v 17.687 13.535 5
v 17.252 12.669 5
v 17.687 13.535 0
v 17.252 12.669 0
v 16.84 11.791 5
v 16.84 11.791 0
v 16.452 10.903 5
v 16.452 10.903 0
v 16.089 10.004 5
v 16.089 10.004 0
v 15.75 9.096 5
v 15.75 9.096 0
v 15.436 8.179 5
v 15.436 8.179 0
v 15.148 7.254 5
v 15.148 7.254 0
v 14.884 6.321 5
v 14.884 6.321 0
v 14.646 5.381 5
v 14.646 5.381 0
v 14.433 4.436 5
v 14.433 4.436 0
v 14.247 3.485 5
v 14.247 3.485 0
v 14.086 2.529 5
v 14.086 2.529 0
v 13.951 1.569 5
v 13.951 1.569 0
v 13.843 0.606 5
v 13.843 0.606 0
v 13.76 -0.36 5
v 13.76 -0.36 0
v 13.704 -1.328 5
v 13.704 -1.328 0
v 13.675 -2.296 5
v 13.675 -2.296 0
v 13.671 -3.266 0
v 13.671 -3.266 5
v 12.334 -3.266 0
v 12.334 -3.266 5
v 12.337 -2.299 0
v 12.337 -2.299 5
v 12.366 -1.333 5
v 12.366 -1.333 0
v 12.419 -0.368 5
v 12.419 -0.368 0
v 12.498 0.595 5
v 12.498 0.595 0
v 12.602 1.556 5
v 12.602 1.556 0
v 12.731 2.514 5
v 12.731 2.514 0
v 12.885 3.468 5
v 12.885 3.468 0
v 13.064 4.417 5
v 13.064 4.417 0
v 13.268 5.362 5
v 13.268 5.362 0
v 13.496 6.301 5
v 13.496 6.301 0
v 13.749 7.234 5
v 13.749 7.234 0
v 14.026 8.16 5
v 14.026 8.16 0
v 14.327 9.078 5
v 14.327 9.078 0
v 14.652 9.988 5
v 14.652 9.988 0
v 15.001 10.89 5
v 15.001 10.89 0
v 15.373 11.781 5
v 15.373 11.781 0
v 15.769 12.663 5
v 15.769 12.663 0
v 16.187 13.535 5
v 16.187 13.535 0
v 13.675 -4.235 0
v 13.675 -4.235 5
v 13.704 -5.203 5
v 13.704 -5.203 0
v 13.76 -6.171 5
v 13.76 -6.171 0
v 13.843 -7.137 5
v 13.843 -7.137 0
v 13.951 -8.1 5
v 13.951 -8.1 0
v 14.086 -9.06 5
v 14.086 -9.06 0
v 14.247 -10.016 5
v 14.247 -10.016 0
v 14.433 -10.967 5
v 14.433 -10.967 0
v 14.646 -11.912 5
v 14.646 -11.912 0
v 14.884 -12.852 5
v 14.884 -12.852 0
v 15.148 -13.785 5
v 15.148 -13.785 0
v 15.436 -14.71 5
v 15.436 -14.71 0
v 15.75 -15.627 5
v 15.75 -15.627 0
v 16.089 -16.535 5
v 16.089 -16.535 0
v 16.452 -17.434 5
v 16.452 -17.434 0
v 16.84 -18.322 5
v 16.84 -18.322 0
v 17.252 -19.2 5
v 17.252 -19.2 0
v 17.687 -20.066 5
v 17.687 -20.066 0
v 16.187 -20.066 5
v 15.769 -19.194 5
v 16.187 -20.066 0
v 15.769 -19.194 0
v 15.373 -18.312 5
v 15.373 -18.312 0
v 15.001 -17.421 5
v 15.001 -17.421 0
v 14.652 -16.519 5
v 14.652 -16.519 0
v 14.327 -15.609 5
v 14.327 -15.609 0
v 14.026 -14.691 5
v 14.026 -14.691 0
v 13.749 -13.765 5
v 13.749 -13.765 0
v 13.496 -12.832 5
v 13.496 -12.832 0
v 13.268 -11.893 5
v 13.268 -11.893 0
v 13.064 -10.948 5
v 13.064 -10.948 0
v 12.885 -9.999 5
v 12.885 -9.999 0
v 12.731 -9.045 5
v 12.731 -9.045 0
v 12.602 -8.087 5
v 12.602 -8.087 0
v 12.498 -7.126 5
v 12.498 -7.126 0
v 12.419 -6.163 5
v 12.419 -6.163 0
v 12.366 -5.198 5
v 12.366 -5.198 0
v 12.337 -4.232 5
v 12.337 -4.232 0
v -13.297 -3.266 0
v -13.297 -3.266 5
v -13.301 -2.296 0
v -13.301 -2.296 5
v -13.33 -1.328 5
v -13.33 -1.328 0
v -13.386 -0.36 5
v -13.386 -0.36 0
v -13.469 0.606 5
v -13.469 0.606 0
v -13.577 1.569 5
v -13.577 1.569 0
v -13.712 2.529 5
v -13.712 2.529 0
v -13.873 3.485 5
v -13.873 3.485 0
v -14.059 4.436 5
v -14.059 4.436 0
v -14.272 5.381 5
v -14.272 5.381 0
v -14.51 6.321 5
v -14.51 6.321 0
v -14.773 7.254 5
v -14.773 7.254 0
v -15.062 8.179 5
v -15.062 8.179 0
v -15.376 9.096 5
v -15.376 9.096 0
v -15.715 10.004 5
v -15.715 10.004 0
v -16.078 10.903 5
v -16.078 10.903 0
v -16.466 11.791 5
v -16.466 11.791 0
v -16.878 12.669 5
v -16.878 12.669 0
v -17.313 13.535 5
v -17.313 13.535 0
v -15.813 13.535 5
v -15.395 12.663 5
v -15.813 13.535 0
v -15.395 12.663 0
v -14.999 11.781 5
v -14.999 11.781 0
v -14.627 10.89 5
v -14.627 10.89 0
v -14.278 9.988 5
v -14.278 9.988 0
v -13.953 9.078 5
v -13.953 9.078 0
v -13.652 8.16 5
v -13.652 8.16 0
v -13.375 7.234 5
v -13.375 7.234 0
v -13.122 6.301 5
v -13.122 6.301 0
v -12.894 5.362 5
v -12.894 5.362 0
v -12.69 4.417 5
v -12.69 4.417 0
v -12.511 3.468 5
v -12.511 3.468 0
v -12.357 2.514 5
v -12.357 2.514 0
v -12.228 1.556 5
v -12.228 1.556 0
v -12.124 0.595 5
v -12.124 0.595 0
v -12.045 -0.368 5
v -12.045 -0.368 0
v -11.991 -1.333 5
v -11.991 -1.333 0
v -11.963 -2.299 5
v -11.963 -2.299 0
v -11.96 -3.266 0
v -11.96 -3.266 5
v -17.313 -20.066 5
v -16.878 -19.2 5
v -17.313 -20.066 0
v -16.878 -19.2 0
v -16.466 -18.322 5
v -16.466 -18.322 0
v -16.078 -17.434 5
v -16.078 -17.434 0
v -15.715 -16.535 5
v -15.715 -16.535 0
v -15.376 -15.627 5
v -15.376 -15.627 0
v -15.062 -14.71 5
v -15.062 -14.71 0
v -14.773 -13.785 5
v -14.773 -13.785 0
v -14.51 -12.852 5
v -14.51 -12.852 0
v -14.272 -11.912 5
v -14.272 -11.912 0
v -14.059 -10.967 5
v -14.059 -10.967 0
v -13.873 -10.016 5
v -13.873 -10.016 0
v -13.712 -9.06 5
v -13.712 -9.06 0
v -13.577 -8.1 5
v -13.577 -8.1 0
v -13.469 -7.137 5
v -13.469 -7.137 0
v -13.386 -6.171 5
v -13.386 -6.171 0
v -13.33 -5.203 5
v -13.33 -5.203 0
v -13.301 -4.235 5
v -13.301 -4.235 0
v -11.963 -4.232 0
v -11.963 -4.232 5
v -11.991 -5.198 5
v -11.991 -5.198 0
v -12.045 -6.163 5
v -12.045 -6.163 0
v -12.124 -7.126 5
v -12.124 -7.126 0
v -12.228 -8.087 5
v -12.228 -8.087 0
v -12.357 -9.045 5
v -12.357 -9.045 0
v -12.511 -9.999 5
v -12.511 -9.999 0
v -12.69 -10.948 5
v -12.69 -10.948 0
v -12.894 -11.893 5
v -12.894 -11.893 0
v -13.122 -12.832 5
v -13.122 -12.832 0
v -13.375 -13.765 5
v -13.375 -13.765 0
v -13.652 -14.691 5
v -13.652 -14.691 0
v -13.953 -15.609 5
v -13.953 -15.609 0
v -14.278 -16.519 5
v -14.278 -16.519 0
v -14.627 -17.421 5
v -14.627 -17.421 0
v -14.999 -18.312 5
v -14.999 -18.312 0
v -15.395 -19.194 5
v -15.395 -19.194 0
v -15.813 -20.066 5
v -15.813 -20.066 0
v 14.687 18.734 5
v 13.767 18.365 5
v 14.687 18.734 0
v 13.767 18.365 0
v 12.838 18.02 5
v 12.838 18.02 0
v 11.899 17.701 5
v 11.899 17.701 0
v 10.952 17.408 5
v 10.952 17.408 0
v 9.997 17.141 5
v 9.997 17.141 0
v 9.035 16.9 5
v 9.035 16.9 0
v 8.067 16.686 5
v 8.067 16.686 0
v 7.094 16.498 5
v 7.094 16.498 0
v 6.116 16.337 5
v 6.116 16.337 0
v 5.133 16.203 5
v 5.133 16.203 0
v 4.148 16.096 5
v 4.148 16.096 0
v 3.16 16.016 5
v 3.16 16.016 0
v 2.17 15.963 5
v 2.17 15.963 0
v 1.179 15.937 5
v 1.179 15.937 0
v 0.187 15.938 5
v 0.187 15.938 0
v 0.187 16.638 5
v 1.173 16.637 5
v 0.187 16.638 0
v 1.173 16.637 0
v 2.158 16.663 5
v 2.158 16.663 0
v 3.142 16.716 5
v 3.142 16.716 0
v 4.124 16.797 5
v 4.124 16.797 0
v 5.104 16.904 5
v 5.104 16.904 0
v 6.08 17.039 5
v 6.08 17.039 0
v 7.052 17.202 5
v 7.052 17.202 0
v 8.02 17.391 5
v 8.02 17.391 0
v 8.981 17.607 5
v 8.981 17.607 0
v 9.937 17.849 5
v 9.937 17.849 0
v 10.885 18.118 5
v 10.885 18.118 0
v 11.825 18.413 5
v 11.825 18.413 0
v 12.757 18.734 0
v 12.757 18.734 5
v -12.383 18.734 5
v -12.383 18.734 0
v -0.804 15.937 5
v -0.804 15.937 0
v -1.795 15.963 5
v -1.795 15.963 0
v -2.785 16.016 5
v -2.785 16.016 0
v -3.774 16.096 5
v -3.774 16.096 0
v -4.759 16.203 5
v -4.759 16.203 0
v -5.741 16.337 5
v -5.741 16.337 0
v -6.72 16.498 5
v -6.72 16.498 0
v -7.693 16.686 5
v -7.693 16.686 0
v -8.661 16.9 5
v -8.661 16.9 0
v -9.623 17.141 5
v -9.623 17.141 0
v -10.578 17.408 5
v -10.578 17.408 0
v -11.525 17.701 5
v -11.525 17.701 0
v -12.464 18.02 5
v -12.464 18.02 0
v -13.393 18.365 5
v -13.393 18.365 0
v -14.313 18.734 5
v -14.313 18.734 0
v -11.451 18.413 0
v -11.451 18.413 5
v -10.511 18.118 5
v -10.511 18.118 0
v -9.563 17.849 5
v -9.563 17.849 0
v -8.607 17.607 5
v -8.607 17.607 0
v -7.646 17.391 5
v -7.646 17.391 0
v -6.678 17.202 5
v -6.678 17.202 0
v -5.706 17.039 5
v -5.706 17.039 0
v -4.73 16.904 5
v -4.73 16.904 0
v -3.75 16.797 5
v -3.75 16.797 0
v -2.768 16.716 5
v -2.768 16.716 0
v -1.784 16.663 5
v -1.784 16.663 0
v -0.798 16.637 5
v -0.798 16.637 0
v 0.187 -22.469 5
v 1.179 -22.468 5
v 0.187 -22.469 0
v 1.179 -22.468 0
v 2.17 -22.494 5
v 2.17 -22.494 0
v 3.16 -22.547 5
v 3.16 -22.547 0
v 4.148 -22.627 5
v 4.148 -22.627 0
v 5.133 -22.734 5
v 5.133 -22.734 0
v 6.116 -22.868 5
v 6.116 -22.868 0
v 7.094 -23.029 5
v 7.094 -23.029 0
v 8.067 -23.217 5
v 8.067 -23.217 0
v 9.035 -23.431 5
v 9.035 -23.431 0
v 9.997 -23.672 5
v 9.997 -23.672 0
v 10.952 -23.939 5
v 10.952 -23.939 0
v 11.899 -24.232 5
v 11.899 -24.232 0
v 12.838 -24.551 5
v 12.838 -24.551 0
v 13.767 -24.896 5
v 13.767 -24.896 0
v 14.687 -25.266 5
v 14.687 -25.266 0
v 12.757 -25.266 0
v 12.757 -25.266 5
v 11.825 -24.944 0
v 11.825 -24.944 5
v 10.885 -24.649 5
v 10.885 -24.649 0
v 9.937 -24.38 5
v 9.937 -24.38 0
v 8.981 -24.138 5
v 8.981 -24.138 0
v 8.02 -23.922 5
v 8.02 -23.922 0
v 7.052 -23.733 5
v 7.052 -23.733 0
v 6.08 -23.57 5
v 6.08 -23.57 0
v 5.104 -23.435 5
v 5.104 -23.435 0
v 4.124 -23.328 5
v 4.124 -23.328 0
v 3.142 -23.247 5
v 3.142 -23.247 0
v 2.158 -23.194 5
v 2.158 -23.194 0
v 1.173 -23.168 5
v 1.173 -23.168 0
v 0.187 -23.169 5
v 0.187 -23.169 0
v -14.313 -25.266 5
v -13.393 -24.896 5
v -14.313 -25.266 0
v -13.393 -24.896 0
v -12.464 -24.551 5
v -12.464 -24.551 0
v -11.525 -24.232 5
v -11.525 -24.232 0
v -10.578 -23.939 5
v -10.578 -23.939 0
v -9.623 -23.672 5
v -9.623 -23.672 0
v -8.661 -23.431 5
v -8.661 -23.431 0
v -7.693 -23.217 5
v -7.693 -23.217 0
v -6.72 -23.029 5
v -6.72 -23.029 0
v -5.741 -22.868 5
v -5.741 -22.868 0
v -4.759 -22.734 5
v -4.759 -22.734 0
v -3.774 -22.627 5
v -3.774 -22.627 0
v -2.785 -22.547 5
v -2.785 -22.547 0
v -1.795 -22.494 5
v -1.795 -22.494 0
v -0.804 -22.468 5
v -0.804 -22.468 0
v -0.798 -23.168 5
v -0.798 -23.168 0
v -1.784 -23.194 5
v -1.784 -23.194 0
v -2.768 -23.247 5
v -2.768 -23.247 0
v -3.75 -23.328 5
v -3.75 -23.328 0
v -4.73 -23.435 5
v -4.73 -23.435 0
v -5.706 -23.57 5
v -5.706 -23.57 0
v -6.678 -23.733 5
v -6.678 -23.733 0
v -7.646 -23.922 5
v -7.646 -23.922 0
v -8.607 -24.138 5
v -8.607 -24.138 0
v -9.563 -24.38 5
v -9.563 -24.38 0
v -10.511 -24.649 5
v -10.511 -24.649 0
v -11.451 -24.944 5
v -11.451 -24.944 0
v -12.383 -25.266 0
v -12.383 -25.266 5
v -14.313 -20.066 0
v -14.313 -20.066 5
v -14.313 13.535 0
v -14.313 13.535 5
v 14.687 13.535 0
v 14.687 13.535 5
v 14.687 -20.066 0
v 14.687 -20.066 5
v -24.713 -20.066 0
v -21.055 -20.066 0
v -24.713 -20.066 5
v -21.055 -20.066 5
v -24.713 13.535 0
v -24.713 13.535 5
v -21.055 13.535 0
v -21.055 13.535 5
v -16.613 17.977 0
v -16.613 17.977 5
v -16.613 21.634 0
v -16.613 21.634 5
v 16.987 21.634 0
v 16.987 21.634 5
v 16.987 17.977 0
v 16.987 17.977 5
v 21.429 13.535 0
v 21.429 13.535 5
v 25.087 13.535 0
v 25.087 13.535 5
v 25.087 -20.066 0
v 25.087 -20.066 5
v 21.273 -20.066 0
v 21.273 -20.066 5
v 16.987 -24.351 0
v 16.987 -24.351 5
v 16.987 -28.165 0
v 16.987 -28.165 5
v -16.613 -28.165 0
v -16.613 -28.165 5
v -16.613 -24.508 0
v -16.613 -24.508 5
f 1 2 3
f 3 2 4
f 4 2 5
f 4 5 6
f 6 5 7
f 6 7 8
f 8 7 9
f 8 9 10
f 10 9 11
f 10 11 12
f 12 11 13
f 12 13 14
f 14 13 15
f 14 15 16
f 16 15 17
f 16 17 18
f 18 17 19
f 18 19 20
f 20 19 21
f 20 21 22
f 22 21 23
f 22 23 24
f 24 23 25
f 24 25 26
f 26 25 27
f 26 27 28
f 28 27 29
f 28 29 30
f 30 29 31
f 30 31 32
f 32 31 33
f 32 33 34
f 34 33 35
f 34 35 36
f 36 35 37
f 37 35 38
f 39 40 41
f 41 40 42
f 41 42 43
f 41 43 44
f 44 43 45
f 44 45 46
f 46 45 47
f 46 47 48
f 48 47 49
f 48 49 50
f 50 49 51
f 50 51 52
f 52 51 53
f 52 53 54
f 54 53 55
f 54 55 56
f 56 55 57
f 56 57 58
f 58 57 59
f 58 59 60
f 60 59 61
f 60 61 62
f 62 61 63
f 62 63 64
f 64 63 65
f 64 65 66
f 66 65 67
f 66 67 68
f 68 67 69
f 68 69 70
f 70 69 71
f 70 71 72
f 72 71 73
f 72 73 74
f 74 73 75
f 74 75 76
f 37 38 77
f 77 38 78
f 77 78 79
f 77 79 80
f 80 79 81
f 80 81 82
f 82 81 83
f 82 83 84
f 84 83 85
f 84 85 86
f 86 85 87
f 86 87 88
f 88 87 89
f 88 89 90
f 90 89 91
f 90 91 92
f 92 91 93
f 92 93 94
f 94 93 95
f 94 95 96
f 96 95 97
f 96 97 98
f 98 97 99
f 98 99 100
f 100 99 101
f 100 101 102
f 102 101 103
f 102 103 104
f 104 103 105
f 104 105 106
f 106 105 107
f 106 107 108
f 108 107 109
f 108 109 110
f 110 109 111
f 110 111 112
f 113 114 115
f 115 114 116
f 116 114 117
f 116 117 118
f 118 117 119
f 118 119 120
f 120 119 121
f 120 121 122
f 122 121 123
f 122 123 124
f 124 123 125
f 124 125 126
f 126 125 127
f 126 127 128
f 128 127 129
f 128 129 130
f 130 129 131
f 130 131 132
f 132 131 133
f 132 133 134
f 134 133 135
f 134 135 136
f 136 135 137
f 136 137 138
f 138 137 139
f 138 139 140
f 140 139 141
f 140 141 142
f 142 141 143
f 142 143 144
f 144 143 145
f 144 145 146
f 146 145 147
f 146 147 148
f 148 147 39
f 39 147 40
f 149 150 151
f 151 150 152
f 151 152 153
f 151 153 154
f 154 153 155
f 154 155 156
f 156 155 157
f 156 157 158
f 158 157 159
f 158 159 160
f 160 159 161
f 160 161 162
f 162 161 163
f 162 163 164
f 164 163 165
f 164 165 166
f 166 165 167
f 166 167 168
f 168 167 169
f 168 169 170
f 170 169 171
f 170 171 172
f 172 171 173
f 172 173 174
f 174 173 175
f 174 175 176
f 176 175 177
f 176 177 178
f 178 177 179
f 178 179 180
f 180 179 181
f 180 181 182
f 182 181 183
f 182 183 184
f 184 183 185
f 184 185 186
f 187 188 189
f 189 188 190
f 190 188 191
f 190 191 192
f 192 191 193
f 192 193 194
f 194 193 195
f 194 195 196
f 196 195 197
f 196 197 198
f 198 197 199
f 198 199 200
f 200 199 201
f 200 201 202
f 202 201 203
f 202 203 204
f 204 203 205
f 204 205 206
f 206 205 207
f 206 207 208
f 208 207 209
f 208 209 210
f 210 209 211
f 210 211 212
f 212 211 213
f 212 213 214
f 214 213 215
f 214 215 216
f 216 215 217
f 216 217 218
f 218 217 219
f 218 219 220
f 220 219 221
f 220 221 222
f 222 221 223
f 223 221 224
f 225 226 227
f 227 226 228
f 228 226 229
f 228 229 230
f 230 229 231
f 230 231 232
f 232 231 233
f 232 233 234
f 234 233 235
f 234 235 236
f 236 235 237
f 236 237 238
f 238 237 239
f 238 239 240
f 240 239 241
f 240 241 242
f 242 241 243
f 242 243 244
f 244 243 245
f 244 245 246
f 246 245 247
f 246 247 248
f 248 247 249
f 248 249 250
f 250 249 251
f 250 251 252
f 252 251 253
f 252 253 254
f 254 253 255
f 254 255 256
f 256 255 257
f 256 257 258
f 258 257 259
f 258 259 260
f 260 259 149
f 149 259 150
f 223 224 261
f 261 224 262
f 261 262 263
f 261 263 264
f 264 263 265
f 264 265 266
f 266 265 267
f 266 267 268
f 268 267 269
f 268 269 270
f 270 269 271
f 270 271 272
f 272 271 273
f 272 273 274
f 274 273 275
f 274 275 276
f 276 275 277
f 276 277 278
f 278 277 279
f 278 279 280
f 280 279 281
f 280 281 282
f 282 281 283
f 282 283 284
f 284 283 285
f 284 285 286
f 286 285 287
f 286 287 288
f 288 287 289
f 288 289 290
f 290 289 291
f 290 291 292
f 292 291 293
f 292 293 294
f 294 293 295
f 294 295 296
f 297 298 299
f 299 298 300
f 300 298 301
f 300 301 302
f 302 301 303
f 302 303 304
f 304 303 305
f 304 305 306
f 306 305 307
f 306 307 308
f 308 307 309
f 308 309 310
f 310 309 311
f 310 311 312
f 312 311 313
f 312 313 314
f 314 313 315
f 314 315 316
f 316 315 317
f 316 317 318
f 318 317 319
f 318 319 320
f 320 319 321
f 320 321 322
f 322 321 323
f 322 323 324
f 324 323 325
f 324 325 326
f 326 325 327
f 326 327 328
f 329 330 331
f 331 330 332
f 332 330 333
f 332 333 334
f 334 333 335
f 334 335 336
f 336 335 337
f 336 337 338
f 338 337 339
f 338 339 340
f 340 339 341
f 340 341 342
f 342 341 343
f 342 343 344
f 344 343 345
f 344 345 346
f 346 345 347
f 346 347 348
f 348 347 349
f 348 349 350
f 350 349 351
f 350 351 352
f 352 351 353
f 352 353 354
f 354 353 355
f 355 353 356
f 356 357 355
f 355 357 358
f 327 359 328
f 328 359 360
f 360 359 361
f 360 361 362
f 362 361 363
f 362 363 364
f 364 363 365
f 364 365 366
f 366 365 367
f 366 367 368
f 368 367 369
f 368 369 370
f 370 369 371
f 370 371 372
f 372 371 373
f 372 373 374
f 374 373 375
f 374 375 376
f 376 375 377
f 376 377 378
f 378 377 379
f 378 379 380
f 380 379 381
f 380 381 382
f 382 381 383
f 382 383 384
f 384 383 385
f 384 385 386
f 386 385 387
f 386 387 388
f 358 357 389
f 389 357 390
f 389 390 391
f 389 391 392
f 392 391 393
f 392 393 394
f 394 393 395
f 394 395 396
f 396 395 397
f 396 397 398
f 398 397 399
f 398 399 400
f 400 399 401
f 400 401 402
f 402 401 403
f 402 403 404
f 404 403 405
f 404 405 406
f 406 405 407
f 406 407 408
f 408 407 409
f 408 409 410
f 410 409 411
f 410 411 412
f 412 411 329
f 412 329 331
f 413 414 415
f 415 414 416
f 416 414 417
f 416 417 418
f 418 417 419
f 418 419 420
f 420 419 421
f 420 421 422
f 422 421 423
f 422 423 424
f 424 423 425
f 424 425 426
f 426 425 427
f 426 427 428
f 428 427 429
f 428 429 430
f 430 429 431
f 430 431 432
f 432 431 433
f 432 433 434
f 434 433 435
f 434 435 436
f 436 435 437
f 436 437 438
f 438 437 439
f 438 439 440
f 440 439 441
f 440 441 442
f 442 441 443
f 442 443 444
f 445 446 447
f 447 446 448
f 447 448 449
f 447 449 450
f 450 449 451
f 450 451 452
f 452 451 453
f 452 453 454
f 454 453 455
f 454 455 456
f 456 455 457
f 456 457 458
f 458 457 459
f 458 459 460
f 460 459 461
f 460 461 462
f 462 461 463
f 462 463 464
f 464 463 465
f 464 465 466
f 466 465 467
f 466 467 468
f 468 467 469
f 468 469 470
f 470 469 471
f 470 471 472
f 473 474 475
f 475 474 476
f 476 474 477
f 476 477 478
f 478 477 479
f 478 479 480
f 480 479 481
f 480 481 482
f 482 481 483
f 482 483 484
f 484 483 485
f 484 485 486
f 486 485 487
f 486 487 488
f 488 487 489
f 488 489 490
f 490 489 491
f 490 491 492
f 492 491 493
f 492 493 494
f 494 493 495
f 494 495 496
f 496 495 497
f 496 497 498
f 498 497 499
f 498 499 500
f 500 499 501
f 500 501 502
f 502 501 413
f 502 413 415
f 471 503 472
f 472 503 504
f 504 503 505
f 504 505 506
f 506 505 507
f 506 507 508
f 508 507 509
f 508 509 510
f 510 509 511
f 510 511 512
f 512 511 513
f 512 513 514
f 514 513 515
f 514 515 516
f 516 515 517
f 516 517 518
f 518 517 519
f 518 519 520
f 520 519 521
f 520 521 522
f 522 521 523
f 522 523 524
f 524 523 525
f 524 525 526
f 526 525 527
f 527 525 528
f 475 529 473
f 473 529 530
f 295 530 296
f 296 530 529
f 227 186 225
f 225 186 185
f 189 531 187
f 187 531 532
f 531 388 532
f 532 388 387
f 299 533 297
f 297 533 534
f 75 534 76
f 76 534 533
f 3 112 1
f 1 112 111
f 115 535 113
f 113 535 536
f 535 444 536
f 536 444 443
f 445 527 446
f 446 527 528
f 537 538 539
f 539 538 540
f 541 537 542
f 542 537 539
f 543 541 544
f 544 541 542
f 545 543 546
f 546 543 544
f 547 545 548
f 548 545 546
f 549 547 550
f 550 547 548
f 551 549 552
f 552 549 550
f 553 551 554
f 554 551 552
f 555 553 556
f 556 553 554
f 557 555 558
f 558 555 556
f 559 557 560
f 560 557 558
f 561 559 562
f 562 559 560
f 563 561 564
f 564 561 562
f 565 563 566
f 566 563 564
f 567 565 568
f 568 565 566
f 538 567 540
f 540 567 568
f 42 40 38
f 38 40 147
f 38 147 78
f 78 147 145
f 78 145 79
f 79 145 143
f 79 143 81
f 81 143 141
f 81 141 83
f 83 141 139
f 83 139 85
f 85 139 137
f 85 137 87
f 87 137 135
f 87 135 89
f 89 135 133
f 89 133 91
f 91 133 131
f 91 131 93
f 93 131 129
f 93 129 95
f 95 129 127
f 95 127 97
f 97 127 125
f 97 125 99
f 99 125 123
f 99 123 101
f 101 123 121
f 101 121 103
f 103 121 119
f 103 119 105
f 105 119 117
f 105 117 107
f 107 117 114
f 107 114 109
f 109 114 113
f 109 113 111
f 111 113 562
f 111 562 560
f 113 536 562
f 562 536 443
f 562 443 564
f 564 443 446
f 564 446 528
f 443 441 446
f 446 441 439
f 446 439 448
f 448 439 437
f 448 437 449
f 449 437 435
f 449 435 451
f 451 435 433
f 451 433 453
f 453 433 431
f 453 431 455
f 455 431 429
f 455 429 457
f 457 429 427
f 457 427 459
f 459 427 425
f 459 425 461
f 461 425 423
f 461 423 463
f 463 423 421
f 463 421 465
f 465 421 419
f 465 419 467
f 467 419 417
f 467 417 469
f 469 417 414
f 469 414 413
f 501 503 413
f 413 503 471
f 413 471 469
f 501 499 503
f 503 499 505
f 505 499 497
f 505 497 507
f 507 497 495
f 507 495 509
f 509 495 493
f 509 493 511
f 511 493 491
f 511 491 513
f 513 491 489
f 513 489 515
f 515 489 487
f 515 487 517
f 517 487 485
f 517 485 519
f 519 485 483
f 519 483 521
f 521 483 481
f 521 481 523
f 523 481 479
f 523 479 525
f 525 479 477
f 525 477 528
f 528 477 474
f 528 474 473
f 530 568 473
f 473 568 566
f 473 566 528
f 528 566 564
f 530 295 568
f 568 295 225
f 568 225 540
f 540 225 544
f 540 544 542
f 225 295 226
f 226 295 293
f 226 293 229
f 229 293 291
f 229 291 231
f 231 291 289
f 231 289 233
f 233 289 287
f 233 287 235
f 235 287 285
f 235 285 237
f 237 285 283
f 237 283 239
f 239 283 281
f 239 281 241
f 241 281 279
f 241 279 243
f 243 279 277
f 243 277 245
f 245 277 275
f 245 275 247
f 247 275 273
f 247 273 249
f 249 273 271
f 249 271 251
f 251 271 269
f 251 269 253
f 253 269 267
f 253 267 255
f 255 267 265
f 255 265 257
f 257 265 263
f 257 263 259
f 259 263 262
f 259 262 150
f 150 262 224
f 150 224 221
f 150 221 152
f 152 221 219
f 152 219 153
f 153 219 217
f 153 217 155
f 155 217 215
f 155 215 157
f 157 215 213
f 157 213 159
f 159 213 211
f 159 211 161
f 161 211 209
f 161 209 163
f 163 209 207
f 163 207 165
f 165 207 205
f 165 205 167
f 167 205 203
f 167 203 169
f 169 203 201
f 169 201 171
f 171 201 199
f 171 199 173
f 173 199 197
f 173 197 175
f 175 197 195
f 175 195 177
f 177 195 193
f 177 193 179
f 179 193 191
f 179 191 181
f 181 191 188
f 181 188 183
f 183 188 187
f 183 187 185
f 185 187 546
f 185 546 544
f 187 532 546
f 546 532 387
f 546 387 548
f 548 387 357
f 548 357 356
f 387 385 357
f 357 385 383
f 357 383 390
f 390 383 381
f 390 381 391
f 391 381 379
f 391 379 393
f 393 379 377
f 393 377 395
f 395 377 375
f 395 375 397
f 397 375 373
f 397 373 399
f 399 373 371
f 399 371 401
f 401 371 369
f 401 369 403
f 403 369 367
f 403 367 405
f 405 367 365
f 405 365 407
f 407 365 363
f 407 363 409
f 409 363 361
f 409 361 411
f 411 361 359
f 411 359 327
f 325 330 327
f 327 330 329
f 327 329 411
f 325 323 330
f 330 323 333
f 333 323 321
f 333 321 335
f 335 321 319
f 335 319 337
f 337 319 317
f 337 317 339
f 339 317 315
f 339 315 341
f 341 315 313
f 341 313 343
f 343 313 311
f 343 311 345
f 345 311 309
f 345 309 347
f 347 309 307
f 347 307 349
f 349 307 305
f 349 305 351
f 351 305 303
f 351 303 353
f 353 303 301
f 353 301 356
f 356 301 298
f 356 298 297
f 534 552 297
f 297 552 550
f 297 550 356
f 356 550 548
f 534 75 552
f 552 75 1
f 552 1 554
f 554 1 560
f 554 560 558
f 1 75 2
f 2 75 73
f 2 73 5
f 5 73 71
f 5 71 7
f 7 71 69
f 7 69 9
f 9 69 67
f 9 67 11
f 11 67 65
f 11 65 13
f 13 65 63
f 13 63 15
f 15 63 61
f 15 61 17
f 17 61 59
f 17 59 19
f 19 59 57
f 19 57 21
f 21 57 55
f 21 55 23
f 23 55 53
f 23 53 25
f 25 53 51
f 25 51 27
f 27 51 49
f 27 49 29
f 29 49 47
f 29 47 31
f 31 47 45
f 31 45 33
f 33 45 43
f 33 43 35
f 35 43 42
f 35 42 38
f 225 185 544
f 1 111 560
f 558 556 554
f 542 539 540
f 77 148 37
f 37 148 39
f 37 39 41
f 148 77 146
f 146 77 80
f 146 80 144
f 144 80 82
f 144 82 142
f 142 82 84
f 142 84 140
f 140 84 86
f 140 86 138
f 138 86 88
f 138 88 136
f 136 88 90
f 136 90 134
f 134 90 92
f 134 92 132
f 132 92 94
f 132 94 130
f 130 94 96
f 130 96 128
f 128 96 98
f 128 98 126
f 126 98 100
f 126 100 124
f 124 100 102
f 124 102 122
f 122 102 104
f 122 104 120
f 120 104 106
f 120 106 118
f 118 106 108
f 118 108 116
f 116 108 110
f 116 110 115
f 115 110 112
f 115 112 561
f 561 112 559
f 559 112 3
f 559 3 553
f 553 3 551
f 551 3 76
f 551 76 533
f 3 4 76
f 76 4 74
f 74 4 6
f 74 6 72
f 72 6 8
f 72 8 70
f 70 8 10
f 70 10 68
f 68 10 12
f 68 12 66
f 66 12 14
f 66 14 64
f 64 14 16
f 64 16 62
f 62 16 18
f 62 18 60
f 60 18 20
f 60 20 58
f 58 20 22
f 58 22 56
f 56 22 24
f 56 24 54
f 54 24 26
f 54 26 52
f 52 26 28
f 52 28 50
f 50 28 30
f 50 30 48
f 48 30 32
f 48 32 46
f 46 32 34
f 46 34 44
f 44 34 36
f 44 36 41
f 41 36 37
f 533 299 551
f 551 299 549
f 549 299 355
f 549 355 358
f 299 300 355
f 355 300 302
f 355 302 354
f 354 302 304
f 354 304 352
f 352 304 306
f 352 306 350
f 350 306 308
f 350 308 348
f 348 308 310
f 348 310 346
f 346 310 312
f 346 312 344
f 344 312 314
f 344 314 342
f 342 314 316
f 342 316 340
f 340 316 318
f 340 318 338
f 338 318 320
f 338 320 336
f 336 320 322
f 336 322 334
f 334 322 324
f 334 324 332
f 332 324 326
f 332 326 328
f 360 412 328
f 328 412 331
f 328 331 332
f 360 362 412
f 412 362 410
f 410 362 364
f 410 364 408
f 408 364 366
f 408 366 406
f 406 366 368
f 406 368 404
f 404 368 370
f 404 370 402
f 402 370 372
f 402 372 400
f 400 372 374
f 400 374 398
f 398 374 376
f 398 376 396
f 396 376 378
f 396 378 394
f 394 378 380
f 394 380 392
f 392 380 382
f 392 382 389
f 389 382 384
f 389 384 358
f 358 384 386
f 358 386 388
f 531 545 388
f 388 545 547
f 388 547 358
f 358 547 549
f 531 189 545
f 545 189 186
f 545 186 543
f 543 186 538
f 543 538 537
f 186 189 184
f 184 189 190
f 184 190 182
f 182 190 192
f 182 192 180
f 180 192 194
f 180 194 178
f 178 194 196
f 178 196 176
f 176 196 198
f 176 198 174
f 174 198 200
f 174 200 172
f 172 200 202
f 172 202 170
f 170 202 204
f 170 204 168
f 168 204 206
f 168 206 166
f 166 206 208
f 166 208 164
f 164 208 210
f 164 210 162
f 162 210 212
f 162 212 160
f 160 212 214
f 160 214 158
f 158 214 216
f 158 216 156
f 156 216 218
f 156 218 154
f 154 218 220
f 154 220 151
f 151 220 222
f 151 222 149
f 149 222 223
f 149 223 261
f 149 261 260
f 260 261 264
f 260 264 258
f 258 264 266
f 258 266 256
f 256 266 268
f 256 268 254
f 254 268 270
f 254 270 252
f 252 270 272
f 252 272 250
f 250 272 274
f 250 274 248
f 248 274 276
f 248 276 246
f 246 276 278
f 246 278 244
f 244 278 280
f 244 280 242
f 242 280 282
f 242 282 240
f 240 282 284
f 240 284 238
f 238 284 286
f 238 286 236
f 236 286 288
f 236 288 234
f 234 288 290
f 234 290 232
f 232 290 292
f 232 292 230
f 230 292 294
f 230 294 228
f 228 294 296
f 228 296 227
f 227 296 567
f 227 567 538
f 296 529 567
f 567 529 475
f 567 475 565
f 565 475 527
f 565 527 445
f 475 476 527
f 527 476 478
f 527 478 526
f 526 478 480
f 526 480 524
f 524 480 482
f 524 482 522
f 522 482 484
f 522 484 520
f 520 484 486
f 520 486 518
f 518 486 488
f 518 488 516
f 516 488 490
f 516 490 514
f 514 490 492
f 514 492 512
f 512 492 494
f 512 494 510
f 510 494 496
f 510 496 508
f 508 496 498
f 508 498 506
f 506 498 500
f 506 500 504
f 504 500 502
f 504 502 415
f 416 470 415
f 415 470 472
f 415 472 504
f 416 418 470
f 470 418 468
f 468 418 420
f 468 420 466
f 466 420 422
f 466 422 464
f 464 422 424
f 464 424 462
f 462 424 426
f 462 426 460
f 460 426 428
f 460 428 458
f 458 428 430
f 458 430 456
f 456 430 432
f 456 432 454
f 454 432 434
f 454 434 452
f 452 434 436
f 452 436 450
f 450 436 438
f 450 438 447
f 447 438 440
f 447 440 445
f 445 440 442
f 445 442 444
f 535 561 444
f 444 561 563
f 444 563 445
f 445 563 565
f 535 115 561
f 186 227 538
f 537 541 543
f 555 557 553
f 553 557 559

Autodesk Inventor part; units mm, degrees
ref_plane "YZ Plane" through (0, 0, 0) normal (1, 0, 0) x (0, 1, 0)
ref_plane "XZ Plane" through (0, 0, 0) normal (0, 1, 0) x (-1, 0, 0)
ref_plane "XY Plane" through (0, 0, 0) normal (0, 0, 1) x (1, 0, 0)
sketch "Sketch1" plane through (0, 0, 0) normal (0, 0, 1) x (1, 0, 0)
  line L0 (21.5871, 13.6345) -> (17.0871, 18.1345) projected
  line L1 (17.0871, 18.1345) -> (-16.7129, 18.1345) projected
  line L2 (-16.7129, 18.1345) -> (-21.2129, 13.6345) projected
  line L3 (-21.0966, 13.6345) -> (-21.0966, -20.1655) projected
  line L4 (21.4709, -20.1655) -> (21.4709, 13.6345) projected
  line L5 (21.4709, -20.1655) -> (17.0871, -24.4078) projected
  line L6 (-16.7129, -24.4078) -> (17.0871, -24.4078) projected
  line L7 (-16.7129, -24.4078) -> (-21.0966, -20.1655) projected
  line L8 (-24.7129, -28.1655) -> (-24.7129, 13.6345) construction
  line L9 (25.0871, -28.1655) -> (-24.7129, -28.1655) construction
  line L10 (25.0871, -28.1655) -> (25.0871, 13.6345) construction
  line L11 (17.0871, 21.6345) -> (-16.7129, 21.6345) construction
  line L12 (-21.0552, -20.0655) -> (-16.6129, -24.5078)
  line L13 (-16.6129, -24.5078) -> (-16.6129, -28.1655)
  line L14 (-16.6129, -28.1655) -> (17.0871, -28.1655)
  line L15 (25.0871, -20.0655) -> (21.4295, -20.0655)
  line L16 (25.0871, 13.5345) -> (25.0871, -20.0655)
  line L17 (21.4295, 13.5345) -> (25.0871, 13.5345)
  line L18 (21.4295, 13.5345) -> (16.9871, 17.9768)
  line L19 (16.9871, 17.9768) -> (16.9871, 21.6345)
  line L20 (16.9871, 21.6345) -> (-16.6129, 21.6345)
  line L21 (-16.6129, 21.6345) -> (-16.6129, 17.9768)
  line L22 (-16.6129, 17.9768) -> (-21.0552, 13.5345)
  line L23 (-24.7129, 13.5345) -> (-21.0552, 13.5345)
  line L24 (-24.7129, -20.0655) -> (-24.7129, 13.5345)
  line L25 (-21.0552, -20.0655) -> (-24.7129, -20.0655)
  line L26 (-12.3129, -23.2655) -> (12.6871, -23.2655) projected
  line L27 (12.6871, -23.2655) -> (12.6871, 16.7345) projected
  line L28 (-12.3129, 16.7345) -> (12.6871, 16.7345) projected
  line L29 (-12.3129, -23.2655) -> (-12.3129, 16.7345) projected
  line L30 (14.6871, -25.2655) -> (-14.3129, -25.2655) construction
  line L31 (-14.3129, -25.2655) -> (-14.3129, 18.7345) construction
  line L32 (-14.3129, 18.7345) -> (14.6871, 18.7345) construction
  line L33 (14.6871, 18.7345) -> (14.6871, -25.2655) construction
  line L34 (-17.3129, 21.7345) -> (17.6871, 21.7345) construction
  line L35 (17.6871, 21.7345) -> (17.6871, -28.2655) construction
  line L36 (17.6871, -28.2655) -> (-17.3129, -28.2655) construction
  line L37 (-17.3129, -28.2655) -> (-17.3129, 21.7345) construction
  line L38 (-14.3129, -23.2655) -> (-14.3129, -25.2655)
  line L39 (-14.3129, -25.2655) -> (14.6871, -25.2655)
  line L40 (14.6871, -25.2655) -> (14.6871, -20.0655)
  line L41 (14.6871, -20.0655) -> (17.6871, -20.0655)
  line L42 (17.6871, -20.0655) -> (17.6871, 13.5345)
  line L43 (17.6871, 13.5345) -> (14.6871, 13.5345)
  line L44 (14.6871, 13.5345) -> (14.6871, 18.7345)
  line L45 (14.6871, 18.7345) -> (-14.3129, 18.7345)
  line L46 (-14.3129, 18.7345) -> (-14.3129, 13.5345)
  line L47 (-14.3129, 13.5345) -> (-17.3129, 13.5345)
  line L48 (-17.3129, 13.5345) -> (-17.3129, -20.0655)
  line L49 (-17.3129, -20.0655) -> (-14.3129, -20.0655)
  line L50 (-14.3129, -20.0655) -> (-14.3129, -23.2655)
  line L51 (-16.6129, -28.1655) -> (17.0871, -28.1655)
  line L52 (16.9871, -28.1655) -> (16.9871, -24.3509)
  line L53 (16.9871, -24.3509) -> (21.2726, -20.0655)
  line L54 (21.2726, -20.0655) -> (21.4295, -20.0655)
  point P0 (14.2, -44.8454)
  point P1 (16.9871, 19.8057)
  dimension "d74" = 2
  dimension "d75" = 5
  dimension "d76" = 135
extrude "Extrusion1" add sketch "Sketch1" along normal blind 5 contours L19 L18 L17 L4 L15 L54 L53 L52 L6 L40 L41 L42 L43 L44 L1 | L1 L44 L45 L46 L21 L20 L19 | L46 L47 L48 L49 L50 L38 L6 L12 L25 L3 L23 L22 L21 L1 | L17 L16 L15 L4 | L3 L25 L24 L23 | L6 L52 L14 L13 L12 L38 L39 L40
sketch "Sketch5" plane through (0, 0, 0) normal (0, 0, -1) x (-1, 0, 0)
  line L0 (12.3129, -23.2655) -> (-12.6871, -23.2655) construction
  line L1 (-12.6871, -23.2655) -> (-12.6871, 16.7345) construction
  line L2 (12.3129, 16.7345) -> (-12.6871, 16.7345) construction
  line L3 (12.3129, -23.2655) -> (12.3129, 16.7345) construction
  line L4 (-14.6871, -25.2655) -> (14.3129, -25.2655) construction
  arc A0 (14.3129, -25.2655) -> (-0.1871, -22.4693) centre (0.3594, -58.629) ccw
  arc A1 (12.3827, -25.2655) -> (-0.1871, -23.1694) centre (0.3594, -58.629) ccw
  line L5 (-0.1871, -22.4693) -> (-0.1871, -23.1694)
  line L6 (14.3129, -20.0655) -> (14.3129, -25.2655) projected
  line L7 (14.3129, -25.2655) -> (12.3827, -25.2655)
  point P0 (0, 0)
  dimension "d79" = 0.7
extrude "Extrusion4" add sketch "Sketch5" against normal up to surface (5 mm away)
mirror "Mirror1" about plane through (0.1871, -23.1694, 0) normal (1, 0, 0) of "Extrusion4"
ref_plane "Work Plane1" through (0.1871, -20.0655, 0) normal (-1, 0, 0) x (0, 0, 1)
ref_plane "Work Plane2" through (-16.6129, -3.2655, 0) normal (0, -1, 0) x (1, 0, 0)
mirror "Mirror2" about plane through (-16.6129, -3.2655, 0) normal (0, -1, 0) of "Extrusion4", "Mirror1"
sketch "Sketch6" plane through (0, 0, 0) normal (0, 0, -1) x (-1, 0, 0)
  spline S0 degree 3 poles (1.425, -3.2655) (1.425, -3.4679) (1.3845, -3.6839) (1.22, -4.081) (1.0959, -4.2623) (0.8097, -4.5486) (0.6284, -4.6726) (0.2312, -4.8371) (0.0153, -4.8776) (-0.3896, -4.8776) (-0.6055, -4.8371) (-1.0027, -4.6726) (-1.1839, -4.5486) (-1.4702, -4.2623) (-1.5943, -4.081) (-1.7588, -3.6839) (-1.7992, -3.4679) (-1.7992, -3.0631) (-1.7588, -2.8471) (-1.5943, -2.45) (-1.4702, -2.2687) (-1.1839, -1.9824) (-1.0027, -1.8584) (-0.6055, -1.6939) (-0.3896, -1.6534) (0.0153, -1.6534) (0.2312, -1.6939) (0.6284, -1.8584) (0.8097, -1.9824) (1.0959, -2.2687) (1.22, -2.45) (1.3845, -2.8471) (1.425, -3.0631) (1.425, -3.2655) knots 0 0 0 0 0.060733 0.060733 0.121465 0.121465 0.182198 0.182198 0.24293 0.24293 0.303663 0.303663 0.364395 0.364395 0.425128 0.425128 0.48586 0.48586 0.546593 0.546593 0.607326 0.607326 0.668058 0.668058 0.728791 0.728791 0.789523 0.789523 0.850256 0.850256 0.910988 0.910988 0.971721 0.971721 0.971721 0.971721 projected
  line L0 (17.3129, 13.5345) -> (17.3129, -20.0655) projected
  arc A0 (13.2973, -3.2655) -> (17.3129, -20.0655) centre (48.9305, -3.6282) ccw
  line L1 (17.3129, -20.0655) -> (14.3129, -20.0655) projected
  arc A1 (11.9598, -3.2655) -> (15.8129, -20.0655) centre (48.9305, -3.6282) ccw
  line L2 (11.9598, -3.2655) -> (13.2973, -3.2655)
  line L3 (15.8129, -20.0655) -> (17.3129, -20.0655)
  point P0 (0, 0)
  point P1 (1.425, -3.2655)
extrude "Extrusion5" add sketch "Sketch6" against normal up to surface (5 mm away) contours A0 L1 A1 L2
mirror "Mirror3" about plane through (-11.9598, -3.2655, 0) normal (0, 1, 0) of "Extrusion5"
mirror "Mirror4" about plane through (0.1871, -20.0655, 0) normal (-1, 0, 0) of "Extrusion5", "Mirror3"
properties part number "20_Cube_Insert_Lens_Cylindrical"
